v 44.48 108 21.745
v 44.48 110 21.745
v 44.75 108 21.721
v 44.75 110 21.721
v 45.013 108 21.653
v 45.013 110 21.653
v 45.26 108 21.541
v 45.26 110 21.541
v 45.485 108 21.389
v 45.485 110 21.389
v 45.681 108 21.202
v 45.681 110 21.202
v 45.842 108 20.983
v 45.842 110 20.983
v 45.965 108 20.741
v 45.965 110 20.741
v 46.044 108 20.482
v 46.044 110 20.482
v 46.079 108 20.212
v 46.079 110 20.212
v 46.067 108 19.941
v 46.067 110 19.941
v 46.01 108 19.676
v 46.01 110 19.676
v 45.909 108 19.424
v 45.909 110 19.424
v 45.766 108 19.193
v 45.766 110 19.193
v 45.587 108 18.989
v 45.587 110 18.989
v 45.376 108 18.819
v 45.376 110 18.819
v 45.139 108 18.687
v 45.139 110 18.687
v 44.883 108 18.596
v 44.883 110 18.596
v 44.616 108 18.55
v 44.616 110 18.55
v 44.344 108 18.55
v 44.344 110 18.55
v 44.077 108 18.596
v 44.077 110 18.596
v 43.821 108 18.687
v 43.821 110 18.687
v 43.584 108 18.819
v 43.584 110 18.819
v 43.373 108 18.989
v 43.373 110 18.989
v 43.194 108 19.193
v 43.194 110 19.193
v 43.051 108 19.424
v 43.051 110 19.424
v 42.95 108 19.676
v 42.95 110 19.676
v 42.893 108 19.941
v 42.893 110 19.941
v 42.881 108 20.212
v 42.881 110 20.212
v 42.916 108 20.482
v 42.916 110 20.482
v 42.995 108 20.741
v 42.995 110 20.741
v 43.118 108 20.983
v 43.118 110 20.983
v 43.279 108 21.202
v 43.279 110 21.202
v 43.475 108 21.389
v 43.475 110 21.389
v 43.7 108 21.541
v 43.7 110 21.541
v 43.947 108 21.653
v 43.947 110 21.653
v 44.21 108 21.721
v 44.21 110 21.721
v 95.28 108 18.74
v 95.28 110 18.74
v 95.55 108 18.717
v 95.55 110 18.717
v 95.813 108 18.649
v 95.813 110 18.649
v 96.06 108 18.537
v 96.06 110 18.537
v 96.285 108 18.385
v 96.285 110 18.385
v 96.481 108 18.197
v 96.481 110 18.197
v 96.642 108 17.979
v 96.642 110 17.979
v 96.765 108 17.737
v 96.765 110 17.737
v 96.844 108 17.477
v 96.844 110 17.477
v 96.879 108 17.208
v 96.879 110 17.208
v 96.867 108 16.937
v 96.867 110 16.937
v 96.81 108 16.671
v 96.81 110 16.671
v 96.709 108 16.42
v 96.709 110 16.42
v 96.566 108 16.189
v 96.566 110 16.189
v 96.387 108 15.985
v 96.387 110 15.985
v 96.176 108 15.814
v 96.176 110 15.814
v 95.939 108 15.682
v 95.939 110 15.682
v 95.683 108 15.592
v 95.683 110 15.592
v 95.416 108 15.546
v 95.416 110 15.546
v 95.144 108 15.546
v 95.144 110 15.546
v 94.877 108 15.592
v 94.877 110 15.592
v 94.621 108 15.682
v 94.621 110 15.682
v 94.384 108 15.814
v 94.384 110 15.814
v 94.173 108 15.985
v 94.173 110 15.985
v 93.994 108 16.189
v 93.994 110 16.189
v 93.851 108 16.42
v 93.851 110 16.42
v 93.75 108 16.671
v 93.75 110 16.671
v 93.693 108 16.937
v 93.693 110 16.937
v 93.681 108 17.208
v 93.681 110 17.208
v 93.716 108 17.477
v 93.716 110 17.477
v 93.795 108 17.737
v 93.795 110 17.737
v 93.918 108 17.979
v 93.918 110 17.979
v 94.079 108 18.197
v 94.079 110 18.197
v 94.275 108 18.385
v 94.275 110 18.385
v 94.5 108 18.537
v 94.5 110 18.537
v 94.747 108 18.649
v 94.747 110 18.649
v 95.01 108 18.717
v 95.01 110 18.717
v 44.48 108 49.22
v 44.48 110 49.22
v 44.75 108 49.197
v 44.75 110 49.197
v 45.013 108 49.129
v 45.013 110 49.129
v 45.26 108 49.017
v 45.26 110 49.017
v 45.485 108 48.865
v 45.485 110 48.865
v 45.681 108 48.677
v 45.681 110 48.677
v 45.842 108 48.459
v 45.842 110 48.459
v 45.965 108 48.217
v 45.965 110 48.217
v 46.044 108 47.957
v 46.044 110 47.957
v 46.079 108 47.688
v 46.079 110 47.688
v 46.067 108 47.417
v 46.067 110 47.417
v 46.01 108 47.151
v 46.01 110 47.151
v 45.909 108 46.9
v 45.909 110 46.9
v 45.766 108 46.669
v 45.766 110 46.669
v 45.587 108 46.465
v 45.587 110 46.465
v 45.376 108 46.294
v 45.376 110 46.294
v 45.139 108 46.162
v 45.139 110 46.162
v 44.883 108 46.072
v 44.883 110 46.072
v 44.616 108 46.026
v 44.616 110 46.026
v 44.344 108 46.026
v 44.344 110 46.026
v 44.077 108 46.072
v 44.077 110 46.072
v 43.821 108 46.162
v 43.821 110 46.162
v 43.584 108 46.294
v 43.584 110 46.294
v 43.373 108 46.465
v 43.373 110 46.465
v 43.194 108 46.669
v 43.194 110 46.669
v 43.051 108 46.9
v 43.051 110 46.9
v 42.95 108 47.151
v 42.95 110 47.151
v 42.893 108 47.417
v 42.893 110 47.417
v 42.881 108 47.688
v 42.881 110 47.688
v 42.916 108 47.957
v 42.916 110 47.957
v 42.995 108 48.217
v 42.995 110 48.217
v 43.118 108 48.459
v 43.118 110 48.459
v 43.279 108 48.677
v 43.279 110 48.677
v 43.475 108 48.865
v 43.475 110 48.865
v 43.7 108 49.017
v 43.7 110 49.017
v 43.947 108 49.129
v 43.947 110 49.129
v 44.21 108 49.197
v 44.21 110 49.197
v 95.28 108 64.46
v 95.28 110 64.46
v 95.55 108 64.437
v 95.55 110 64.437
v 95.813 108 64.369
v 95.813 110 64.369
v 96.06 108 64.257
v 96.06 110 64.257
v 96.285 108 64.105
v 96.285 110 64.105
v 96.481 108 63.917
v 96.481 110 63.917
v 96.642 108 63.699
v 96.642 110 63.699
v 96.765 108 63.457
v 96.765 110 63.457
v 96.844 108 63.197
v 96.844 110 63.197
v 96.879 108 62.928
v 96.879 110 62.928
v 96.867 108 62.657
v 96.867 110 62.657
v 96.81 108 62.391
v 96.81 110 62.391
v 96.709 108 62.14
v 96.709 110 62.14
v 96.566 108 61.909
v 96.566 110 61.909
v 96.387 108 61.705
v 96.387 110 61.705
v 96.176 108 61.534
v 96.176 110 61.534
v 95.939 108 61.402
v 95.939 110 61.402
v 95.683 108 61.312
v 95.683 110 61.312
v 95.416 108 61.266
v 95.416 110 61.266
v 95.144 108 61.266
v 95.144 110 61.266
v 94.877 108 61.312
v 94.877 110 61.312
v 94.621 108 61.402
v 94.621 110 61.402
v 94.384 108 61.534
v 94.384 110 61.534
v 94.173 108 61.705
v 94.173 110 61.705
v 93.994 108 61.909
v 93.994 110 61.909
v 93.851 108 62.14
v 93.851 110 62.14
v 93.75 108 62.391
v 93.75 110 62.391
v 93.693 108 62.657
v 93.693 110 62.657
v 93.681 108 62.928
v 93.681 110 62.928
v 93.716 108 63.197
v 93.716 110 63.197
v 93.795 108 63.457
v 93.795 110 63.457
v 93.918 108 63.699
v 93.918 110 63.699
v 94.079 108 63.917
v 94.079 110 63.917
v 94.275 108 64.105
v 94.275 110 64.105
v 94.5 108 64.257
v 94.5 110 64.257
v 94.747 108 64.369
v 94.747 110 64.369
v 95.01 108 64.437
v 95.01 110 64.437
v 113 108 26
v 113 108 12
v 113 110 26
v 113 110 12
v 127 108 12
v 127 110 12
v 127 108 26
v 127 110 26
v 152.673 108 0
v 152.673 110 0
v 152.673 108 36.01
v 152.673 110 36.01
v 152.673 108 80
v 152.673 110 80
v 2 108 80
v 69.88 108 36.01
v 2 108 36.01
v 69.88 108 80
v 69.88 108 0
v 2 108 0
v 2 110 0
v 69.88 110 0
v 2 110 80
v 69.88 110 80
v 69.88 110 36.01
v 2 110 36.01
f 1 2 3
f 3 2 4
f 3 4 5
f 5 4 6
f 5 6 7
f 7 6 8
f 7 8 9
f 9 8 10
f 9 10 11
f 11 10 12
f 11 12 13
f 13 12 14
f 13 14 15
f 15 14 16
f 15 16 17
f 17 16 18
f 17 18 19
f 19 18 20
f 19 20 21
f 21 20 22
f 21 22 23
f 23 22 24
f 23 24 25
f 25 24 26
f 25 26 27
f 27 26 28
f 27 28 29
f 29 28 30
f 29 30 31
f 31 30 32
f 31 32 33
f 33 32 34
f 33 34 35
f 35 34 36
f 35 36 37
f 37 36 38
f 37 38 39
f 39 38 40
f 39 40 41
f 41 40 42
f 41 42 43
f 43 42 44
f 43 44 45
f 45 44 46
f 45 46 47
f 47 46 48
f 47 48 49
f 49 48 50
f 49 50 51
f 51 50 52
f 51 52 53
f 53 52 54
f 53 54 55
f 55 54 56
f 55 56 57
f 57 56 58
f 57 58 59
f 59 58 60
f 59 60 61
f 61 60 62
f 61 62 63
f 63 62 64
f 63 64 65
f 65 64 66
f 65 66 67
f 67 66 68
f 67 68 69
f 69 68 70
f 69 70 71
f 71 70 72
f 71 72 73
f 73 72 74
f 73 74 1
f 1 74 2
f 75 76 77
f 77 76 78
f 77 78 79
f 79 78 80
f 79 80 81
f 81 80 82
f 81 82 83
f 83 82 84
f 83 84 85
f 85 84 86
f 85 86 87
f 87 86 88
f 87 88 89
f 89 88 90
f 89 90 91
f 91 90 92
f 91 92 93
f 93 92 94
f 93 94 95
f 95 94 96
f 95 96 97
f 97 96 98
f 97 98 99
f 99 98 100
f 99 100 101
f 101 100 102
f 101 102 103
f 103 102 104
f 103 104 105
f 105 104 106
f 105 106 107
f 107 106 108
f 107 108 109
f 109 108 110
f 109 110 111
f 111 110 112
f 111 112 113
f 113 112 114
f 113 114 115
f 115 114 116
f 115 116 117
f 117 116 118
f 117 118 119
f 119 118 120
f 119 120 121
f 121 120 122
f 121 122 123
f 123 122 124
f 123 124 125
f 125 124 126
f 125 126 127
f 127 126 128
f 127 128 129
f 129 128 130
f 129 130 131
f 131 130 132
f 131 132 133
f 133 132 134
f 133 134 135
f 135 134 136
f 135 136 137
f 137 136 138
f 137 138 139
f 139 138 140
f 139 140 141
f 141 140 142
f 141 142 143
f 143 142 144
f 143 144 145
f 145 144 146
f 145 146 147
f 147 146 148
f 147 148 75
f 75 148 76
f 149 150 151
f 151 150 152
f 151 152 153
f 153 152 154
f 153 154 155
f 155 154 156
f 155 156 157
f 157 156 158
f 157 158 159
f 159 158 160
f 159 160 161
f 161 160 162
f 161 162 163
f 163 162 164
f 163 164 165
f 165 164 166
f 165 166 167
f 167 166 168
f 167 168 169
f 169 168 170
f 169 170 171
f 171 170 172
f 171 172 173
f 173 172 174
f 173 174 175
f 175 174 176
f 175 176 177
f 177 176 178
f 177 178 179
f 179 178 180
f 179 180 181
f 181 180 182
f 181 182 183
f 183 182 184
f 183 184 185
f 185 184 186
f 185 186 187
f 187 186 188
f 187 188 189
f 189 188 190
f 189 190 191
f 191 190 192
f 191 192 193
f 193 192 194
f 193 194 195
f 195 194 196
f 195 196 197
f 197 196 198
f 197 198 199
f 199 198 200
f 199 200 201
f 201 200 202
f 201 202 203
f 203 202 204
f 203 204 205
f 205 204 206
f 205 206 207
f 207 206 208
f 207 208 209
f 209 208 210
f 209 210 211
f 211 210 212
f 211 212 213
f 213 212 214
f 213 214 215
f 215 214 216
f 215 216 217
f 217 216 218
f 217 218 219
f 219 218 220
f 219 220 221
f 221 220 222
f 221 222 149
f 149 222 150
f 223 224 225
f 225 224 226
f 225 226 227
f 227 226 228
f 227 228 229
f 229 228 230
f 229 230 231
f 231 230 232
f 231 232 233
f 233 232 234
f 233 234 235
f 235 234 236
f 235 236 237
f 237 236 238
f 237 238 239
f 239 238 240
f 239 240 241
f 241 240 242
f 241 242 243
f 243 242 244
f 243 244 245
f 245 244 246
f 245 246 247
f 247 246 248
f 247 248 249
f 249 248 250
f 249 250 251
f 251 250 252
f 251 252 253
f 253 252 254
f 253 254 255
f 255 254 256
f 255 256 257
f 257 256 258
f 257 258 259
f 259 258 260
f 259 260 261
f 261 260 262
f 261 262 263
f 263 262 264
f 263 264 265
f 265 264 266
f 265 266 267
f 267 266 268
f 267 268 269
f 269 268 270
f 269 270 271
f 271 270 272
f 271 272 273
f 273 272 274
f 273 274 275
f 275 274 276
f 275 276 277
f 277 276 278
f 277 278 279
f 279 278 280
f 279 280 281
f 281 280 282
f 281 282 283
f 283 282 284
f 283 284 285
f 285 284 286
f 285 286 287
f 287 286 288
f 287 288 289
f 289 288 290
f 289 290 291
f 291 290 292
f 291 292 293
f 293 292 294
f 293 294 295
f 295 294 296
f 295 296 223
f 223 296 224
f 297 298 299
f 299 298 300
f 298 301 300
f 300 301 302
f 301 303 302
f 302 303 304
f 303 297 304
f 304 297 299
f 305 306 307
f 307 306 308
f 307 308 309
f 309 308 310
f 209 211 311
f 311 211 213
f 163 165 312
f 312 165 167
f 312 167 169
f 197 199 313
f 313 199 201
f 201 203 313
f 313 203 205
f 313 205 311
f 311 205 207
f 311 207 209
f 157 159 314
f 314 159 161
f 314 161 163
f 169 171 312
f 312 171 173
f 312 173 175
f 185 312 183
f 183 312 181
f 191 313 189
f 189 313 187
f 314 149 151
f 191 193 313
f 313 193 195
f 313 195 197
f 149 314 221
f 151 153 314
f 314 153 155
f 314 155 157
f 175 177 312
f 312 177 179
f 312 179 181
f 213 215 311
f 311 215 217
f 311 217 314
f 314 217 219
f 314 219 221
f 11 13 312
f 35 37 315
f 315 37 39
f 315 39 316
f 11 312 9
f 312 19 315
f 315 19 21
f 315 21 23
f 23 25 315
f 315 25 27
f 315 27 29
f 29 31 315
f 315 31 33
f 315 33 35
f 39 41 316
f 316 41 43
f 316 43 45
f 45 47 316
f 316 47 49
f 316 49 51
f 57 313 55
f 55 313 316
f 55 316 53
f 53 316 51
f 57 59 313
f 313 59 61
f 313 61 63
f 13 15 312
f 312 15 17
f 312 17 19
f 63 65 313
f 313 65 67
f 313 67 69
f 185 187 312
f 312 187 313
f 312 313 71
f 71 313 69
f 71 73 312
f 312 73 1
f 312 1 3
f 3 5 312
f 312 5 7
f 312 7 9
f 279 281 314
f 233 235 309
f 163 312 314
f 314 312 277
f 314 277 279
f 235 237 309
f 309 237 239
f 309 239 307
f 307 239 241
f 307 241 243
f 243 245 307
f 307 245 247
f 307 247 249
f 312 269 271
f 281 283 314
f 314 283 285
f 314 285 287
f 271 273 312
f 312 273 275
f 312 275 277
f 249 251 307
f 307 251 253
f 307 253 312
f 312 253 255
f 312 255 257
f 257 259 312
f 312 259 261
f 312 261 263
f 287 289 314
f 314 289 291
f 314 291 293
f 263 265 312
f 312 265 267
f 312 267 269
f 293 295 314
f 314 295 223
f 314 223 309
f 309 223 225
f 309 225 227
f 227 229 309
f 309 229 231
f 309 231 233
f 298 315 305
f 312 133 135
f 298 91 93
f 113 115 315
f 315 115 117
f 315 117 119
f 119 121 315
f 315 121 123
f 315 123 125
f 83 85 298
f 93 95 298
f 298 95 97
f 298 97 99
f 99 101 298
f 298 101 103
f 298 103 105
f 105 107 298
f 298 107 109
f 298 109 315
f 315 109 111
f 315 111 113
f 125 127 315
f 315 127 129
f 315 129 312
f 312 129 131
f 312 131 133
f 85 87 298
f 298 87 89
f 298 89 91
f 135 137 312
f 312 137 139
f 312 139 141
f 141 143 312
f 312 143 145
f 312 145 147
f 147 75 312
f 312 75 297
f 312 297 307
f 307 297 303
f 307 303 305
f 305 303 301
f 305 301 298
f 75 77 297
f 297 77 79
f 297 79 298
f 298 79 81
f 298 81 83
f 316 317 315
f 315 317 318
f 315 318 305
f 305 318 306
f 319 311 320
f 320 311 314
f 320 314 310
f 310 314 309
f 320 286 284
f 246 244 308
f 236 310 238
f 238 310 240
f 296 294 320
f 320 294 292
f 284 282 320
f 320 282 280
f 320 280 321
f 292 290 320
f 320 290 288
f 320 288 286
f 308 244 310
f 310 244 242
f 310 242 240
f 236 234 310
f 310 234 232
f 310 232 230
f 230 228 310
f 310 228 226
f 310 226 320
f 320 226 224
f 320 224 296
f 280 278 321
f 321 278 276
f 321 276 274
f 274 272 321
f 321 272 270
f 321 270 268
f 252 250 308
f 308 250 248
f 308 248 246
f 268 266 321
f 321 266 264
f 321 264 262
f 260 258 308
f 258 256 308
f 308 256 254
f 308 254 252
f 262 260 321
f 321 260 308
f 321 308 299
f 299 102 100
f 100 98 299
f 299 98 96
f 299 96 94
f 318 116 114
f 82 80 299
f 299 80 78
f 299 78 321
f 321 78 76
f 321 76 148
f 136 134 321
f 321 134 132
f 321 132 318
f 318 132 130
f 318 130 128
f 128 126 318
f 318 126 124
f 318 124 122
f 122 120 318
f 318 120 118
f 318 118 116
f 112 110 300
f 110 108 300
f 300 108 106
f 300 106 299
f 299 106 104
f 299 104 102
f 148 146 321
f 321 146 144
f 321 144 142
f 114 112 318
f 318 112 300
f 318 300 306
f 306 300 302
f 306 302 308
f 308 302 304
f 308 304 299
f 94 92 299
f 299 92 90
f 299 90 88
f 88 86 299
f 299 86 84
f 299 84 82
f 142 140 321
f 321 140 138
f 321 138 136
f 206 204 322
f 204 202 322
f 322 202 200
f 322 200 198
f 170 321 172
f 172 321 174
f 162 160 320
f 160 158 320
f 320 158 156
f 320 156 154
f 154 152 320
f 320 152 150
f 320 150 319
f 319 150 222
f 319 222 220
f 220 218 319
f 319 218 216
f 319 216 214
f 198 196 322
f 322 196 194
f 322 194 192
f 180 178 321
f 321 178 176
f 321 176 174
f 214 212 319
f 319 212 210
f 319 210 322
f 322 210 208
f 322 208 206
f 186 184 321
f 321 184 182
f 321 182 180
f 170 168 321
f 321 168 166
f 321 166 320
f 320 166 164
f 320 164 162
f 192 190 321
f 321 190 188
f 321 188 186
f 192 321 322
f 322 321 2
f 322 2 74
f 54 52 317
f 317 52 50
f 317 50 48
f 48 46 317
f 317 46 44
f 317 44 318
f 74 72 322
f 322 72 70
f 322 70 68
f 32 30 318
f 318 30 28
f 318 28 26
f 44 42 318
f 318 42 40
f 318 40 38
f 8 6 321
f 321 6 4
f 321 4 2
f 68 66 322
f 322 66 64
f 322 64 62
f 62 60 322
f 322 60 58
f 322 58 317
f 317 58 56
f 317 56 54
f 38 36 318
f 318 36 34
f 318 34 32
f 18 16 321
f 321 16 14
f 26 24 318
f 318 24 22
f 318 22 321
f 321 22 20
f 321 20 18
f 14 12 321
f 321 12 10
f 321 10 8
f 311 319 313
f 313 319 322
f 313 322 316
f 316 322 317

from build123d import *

# Parameters (mm, degrees)
SKETCH1_W           = 155
SKETCH1_H           = 110
BOSS_EXTRUDE1_DEPTH = 80
SKETCH2_W           = 151
SKETCH2_H           = 106
CUT_EXTRUDE1_DEPTH  = 78
SKETCH3_R           = 2.5
CUT_EXTRUDE2_DEPTH  = 2
SKETCH7_R           = 1.6
CUT_EXTRUDE7_DEPTH  = 2
SKETCH4_W           = 27.5
SKETCH4_H           = 46.8
CUT_EXTRUDE8_DEPTH  = 2
SKETCH8_W           = 4
SKETCH8_H           = 53
CUT_EXTRUDE9_DEPTH  = 2
SKETCH9_W           = 14
SKETCH9_H           = 14
CUT_EXTRUDE10_DEPTH = 2
SKETCH10_W          = 25.2
SKETCH10_H          = 71.2
SKETCH10_R          = 1.25
CUT_EXTRUDE12_DEPTH = 2
SKETCH11_R          = 2.5
SKETCH11_R_2        = 4.5
CUT_EXTRUDE13_DEPTH = 2
SKETCH12_W          = 150.672892958
SKETCH12_H          = 106
SKETCH12_W_2        = 2
SKETCH12_H_2        = 110
CUT_EXTRUDE14_DEPTH = 80
SKETCH13_W          = 150.672892958
SKETCH13_H          = 2
CUT_EXTRUDE15_DEPTH = 80
SKETCH14_W          = 2
SKETCH14_H          = 106
CUT_EXTRUDE16_DEPTH = 80


with BuildPart() as part:
    # Sketch1 → Boss-Extrude1 (new body)
    with BuildSketch(Plane.XY):
        with Locations((77.5, 55)):
            Rectangle(SKETCH1_W, SKETCH1_H)
    extrude(amount=BOSS_EXTRUDE1_DEPTH)

    # Sketch2 → Cut-Extrude1 (cut)
    with BuildSketch(Plane.XY.offset(80)):
        with Locations((77.5, 55)):
            Rectangle(SKETCH2_W, SKETCH2_H)
    extrude(amount=-CUT_EXTRUDE1_DEPTH, mode=Mode.SUBTRACT)

    # Sketch3 → Cut-Extrude2 (cut)
    with BuildSketch(Plane.XY.offset(2)):
        with Locations((145, 100.5)):
            Circle(SKETCH3_R)
        with Locations((145, 9.5)):
            Circle(SKETCH3_R)
        with Locations((10, 9.5)):
            Circle(SKETCH3_R)
        with Locations((10, 100.5)):
            Circle(SKETCH3_R)
    extrude(amount=-CUT_EXTRUDE2_DEPTH, mode=Mode.SUBTRACT)

    # Sketch7 → Cut-Extrude7 (cut)
    with BuildSketch(Plane(origin=(0, 110, 0), x_dir=(1, 0, 0), z_dir=(0, 1, 0))):
        with Locations((44.48, -20.14450396)):
            Circle(SKETCH7_R)
        with Locations((95.28, -17.14)):
            Circle(SKETCH7_R)
        with Locations((95.28, -62.86)):
            Circle(SKETCH7_R)
        with Locations((44.48, -47.62)):
            Circle(SKETCH7_R)
    extrude(amount=-CUT_EXTRUDE7_DEPTH, mode=Mode.SUBTRACT)

    # Sketch4 → Cut-Extrude8 (cut)
    with BuildSketch(Plane(origin=(155, 0, 0), x_dir=(0, 0, -1), z_dir=(1, 0, 0))):
        with Locations((-40, 82.5)):
            Rectangle(SKETCH4_W, SKETCH4_H)
    extrude(amount=-CUT_EXTRUDE8_DEPTH, mode=Mode.SUBTRACT)

    # Sketch8 → Cut-Extrude9 (cut)
    with BuildSketch(Plane(origin=(155, 0, 0), x_dir=(0, 0, -1), z_dir=(1, 0, 0))):
        with Locations((-68, 28.5)):
            Rectangle(SKETCH8_W, SKETCH8_H)
        with Locations((-76, 28.5)):
            Rectangle(SKETCH8_W, SKETCH8_H)
        with Locations((-60, 28.5)):
            Rectangle(SKETCH8_W, SKETCH8_H)
        with Locations((-52, 28.5)):
            Rectangle(SKETCH8_W, SKETCH8_H)
        with Locations((-44, 28.5)):
            Rectangle(SKETCH8_W, SKETCH8_H)
        with Locations((-36, 28.5)):
            Rectangle(SKETCH8_W, SKETCH8_H)
        with Locations((-28, 28.5)):
            Rectangle(SKETCH8_W, SKETCH8_H)
        with Locations((-20, 28.5)):
            Rectangle(SKETCH8_W, SKETCH8_H)
        with Locations((-12, 28.5)):
            Rectangle(SKETCH8_W, SKETCH8_H)
        with Locations((-4, 28.5)):
            Rectangle(SKETCH8_W, SKETCH8_H)
    extrude(amount=-CUT_EXTRUDE9_DEPTH, mode=Mode.SUBTRACT)

    # Sketch9 → Cut-Extrude10 (cut)
    with BuildSketch(Plane(origin=(0, 110, 0), x_dir=(1, 0, 0), z_dir=(0, 1, 0))):
        with Locations((120, -19)):
            Rectangle(SKETCH9_W, SKETCH9_H)
    extrude(amount=-CUT_EXTRUDE10_DEPTH, mode=Mode.SUBTRACT)

    # Sketch10 → Cut-Extrude12 (cut)
    with BuildSketch(Plane.ZY):
        with Locations((58, 55)):
            Rectangle(SKETCH10_W, SKETCH10_H)
        with Locations((42.5, 92.5)):
            Circle(SKETCH10_R)
        with Locations((73.5, 92.5)):
            Circle(SKETCH10_R)
        with Locations((42.5, 17.5)):
            Circle(SKETCH10_R)
        with Locations((73.5, 17.5)):
            Circle(SKETCH10_R)
    extrude(amount=-CUT_EXTRUDE12_DEPTH, mode=Mode.SUBTRACT)

    # Sketch11 → Cut-Extrude13 (cut)
    with BuildSketch(Plane.ZY):
        with Locations((20, 55)):
            Circle(SKETCH11_R)
        with Locations((20, 40)):
            Circle(SKETCH11_R)
        with Locations((20, 25)):
            Circle(SKETCH11_R)
        with Locations((20, 82.5)):
            Circle(SKETCH11_R_2)
    extrude(amount=-CUT_EXTRUDE13_DEPTH, mode=Mode.SUBTRACT)

    # Sketch12 → Cut-Extrude14 (cut)
    with BuildSketch(Plane.XY.offset(80)):
        with Locations((77.336446479, 55)):
            Rectangle(SKETCH12_W, SKETCH12_H)
        Polygon((155, 110), (152.672892958, 110), (152.672892958, 108), (153, 108), (153, 2), (152.672892958, 2), (152.672892958, 0), (155, 0), align=None)
        with Locations((1, 55)):
            Rectangle(SKETCH12_W_2, SKETCH12_H_2)
    extrude(amount=-CUT_EXTRUDE14_DEPTH, mode=Mode.SUBTRACT)

    # Sketch13 → Cut-Extrude15 (cut)
    with BuildSketch(Plane.XY.offset(80)):
        with Locations((77.336446479, 1)):
            Rectangle(SKETCH13_W, SKETCH13_H)
    extrude(amount=-CUT_EXTRUDE15_DEPTH, mode=Mode.SUBTRACT)

    # Sketch14 → Cut-Extrude16 (cut)
    with BuildSketch(Plane(origin=(153, 0, 0), x_dir=(0, 0, -1), z_dir=(1, 0, 0))):
        with Locations((-1, 55)):
            Rectangle(SKETCH14_W, SKETCH14_H)
    extrude(amount=-CUT_EXTRUDE16_DEPTH, mode=Mode.SUBTRACT)


solid = part.part
